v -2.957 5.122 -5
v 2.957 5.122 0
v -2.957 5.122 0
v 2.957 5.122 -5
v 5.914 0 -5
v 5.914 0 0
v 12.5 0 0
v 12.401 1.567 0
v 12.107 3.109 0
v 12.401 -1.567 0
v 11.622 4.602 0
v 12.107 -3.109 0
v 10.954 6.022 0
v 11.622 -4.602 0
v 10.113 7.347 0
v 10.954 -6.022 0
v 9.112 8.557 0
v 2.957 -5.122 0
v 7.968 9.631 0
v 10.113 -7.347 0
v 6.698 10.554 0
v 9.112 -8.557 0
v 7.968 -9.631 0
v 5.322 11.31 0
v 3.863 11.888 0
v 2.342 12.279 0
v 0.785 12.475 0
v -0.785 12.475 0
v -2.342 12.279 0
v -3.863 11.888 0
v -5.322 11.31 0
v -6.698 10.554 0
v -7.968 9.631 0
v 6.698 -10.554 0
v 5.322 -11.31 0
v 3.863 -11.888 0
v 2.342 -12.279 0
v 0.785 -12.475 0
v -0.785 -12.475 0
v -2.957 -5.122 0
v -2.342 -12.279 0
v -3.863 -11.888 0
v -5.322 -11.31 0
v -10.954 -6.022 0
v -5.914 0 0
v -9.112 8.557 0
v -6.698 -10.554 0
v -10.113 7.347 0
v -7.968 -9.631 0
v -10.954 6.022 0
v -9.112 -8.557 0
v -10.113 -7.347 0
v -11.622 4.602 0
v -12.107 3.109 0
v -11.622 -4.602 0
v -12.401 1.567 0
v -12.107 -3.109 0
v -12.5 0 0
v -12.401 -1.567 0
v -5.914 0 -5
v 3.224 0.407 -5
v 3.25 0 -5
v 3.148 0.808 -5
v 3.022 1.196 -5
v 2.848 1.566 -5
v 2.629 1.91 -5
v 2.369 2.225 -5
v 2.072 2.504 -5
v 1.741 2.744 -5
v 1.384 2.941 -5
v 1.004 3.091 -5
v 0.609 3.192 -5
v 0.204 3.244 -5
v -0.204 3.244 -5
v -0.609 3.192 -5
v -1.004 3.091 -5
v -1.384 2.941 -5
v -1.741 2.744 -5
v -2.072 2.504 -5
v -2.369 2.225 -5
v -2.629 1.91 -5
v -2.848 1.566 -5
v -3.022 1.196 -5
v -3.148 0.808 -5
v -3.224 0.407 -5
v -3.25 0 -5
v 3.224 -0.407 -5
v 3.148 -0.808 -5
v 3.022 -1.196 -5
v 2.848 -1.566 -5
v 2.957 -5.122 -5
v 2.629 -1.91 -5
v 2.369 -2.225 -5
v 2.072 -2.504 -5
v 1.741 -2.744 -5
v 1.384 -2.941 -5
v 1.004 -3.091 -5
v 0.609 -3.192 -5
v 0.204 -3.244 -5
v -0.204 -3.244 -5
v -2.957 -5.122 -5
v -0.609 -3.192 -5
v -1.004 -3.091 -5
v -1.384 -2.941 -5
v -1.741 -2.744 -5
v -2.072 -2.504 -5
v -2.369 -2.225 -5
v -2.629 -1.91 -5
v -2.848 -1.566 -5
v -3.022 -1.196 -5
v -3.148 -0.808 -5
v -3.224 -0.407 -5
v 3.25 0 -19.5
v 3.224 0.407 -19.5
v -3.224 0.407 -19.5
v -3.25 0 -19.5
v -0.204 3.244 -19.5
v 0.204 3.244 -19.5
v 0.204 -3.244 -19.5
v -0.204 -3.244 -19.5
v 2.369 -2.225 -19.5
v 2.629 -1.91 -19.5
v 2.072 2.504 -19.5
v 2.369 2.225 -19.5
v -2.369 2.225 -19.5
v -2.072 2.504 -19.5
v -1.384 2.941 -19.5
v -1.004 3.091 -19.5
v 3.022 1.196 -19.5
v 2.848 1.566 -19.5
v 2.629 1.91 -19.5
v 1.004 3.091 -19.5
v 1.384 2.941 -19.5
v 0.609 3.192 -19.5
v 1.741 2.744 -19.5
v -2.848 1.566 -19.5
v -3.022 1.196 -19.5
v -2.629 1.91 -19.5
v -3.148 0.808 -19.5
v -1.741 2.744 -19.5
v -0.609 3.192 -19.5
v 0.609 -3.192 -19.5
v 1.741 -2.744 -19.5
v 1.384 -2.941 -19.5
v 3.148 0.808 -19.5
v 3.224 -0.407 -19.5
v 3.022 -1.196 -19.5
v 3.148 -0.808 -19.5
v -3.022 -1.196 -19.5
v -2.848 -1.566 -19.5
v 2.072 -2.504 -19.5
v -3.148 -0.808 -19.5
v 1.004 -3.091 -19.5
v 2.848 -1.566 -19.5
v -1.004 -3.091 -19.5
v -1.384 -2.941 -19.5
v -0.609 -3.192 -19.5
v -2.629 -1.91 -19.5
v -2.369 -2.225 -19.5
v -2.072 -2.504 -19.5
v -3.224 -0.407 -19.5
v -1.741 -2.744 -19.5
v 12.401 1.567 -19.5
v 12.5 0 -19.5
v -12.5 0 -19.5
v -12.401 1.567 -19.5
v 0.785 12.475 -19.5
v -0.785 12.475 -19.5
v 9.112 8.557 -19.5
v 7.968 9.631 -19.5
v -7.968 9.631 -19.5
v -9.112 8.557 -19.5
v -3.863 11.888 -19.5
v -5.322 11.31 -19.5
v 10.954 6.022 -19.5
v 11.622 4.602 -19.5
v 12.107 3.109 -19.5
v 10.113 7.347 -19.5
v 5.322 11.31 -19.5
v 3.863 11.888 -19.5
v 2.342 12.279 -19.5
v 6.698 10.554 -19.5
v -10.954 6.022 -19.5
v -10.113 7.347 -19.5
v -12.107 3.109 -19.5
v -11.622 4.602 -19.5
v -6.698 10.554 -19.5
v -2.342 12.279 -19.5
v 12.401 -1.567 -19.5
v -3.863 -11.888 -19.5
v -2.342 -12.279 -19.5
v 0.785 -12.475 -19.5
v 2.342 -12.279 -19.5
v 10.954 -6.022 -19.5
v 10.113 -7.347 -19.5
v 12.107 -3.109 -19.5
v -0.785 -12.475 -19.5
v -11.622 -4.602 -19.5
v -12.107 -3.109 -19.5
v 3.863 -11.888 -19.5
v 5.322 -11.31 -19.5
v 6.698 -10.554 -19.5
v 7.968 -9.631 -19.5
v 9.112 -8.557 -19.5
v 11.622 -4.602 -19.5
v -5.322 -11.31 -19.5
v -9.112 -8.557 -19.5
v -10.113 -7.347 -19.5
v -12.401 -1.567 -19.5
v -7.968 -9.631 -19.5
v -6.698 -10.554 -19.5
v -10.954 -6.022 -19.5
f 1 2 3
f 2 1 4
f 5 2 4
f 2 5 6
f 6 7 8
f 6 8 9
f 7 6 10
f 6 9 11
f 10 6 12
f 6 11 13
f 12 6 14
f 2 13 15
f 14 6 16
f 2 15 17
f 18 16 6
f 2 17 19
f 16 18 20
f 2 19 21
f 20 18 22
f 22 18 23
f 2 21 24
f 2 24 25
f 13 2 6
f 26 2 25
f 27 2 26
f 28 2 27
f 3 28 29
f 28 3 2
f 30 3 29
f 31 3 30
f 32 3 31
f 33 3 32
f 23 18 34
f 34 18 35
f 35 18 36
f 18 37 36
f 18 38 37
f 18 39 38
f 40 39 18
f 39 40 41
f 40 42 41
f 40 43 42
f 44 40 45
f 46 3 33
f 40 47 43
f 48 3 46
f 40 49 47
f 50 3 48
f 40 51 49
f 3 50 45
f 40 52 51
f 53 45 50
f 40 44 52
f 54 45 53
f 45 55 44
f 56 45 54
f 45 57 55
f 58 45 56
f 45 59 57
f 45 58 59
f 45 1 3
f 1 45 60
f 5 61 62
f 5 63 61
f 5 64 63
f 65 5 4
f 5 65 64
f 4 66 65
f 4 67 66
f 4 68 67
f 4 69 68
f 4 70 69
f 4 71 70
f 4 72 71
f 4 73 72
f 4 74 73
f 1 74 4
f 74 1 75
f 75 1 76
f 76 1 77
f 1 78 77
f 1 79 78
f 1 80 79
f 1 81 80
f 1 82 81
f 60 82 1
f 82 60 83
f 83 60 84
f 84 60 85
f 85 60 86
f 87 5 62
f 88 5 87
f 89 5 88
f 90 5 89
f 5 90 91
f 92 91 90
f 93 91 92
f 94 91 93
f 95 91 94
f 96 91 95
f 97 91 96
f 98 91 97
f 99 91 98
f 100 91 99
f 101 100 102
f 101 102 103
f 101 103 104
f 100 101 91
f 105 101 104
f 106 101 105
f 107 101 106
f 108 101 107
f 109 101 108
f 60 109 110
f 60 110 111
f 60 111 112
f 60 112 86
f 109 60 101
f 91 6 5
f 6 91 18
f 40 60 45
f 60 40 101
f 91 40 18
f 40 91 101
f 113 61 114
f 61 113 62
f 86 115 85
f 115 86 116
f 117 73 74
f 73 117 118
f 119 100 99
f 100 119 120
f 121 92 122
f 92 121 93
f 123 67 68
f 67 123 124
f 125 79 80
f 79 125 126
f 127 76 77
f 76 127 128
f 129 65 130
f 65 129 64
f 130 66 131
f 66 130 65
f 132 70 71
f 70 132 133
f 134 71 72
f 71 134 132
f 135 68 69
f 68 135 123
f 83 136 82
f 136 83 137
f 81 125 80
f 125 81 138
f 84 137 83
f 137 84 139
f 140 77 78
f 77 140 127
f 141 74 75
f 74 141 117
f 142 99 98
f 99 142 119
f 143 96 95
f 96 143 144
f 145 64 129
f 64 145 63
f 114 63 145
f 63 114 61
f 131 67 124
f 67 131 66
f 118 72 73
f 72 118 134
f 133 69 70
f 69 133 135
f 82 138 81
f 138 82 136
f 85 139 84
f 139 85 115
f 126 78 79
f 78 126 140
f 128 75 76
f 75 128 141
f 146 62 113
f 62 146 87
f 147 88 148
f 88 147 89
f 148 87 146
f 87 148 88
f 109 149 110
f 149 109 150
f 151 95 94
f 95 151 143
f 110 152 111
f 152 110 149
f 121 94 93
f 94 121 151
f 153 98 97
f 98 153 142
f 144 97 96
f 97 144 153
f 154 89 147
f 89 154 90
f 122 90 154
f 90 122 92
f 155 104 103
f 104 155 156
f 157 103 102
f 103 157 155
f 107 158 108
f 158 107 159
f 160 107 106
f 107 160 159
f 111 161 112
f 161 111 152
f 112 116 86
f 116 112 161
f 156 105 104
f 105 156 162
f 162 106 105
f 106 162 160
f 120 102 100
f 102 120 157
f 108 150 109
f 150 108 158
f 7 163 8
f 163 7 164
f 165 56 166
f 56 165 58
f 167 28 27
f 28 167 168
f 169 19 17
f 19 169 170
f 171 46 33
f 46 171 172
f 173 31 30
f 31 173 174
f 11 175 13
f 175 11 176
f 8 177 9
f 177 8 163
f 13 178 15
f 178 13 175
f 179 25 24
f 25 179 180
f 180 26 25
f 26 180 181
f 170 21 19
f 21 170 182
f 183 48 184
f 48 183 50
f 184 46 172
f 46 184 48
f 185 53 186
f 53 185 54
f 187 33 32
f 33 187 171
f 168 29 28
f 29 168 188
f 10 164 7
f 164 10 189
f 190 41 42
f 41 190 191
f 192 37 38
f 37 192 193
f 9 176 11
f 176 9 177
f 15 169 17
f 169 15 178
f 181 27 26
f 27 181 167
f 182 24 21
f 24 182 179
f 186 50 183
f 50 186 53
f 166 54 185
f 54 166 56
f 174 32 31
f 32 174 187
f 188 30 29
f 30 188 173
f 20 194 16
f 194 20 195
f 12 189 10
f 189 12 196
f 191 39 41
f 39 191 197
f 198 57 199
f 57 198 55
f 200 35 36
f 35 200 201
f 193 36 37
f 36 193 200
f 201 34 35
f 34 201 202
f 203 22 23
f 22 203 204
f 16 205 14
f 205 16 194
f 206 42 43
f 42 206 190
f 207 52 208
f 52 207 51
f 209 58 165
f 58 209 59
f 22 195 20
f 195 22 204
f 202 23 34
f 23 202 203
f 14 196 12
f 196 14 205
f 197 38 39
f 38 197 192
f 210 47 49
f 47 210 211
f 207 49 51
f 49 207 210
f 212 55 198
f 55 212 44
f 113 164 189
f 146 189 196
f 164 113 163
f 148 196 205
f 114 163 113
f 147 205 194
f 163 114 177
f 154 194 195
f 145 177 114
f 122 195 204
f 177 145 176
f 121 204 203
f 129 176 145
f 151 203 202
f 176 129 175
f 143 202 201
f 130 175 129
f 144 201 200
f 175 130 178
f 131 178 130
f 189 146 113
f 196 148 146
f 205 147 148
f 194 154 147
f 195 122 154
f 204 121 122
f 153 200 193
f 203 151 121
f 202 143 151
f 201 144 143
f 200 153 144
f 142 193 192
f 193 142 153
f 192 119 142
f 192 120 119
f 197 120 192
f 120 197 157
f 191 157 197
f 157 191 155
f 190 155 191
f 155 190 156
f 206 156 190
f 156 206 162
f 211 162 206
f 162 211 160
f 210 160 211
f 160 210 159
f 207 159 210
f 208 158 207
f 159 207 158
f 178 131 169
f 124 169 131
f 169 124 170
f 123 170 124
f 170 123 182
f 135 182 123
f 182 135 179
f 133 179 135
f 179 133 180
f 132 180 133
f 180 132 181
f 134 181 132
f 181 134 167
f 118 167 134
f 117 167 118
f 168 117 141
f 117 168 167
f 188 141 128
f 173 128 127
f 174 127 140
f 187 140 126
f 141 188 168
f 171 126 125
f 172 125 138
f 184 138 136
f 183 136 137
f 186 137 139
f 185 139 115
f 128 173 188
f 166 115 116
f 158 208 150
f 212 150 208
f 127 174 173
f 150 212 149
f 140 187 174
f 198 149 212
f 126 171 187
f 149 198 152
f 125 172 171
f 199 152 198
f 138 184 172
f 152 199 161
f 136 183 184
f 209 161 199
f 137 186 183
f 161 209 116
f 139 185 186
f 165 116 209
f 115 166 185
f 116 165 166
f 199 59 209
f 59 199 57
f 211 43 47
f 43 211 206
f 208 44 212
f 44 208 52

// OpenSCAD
$fn = 50;

difference() {
	union() {
		translate(v = [0, 0, -19.5]) {
			cylinder(h = 19.5, r = 12.5);
		}
	}
	union() {
		translate(v = [0, 0, 0]) {
			rotate(a = [0, 0, 0]) {
				difference() {
					union() {
						translate(v = [0, 0, -5]) {
							linear_extrude(height = 5) {
								polygon(points = [[5.914249999999999, 0.0], [2.957125, 5.1218907443321156], [-2.9571249999999982, 5.1218907443321156], [-5.914249999999999, 7.242867331857232e-16], [-2.9571250000000022, -5.121890744332115], [2.9571249999999956, -5.121890744332118]]);
							}
						}
					}
					union();
				}
			}
		}
		#translate(v = [0, 0, -100.0]) {
			cylinder(h = 200, r = 3.25);
		}
	}
}
